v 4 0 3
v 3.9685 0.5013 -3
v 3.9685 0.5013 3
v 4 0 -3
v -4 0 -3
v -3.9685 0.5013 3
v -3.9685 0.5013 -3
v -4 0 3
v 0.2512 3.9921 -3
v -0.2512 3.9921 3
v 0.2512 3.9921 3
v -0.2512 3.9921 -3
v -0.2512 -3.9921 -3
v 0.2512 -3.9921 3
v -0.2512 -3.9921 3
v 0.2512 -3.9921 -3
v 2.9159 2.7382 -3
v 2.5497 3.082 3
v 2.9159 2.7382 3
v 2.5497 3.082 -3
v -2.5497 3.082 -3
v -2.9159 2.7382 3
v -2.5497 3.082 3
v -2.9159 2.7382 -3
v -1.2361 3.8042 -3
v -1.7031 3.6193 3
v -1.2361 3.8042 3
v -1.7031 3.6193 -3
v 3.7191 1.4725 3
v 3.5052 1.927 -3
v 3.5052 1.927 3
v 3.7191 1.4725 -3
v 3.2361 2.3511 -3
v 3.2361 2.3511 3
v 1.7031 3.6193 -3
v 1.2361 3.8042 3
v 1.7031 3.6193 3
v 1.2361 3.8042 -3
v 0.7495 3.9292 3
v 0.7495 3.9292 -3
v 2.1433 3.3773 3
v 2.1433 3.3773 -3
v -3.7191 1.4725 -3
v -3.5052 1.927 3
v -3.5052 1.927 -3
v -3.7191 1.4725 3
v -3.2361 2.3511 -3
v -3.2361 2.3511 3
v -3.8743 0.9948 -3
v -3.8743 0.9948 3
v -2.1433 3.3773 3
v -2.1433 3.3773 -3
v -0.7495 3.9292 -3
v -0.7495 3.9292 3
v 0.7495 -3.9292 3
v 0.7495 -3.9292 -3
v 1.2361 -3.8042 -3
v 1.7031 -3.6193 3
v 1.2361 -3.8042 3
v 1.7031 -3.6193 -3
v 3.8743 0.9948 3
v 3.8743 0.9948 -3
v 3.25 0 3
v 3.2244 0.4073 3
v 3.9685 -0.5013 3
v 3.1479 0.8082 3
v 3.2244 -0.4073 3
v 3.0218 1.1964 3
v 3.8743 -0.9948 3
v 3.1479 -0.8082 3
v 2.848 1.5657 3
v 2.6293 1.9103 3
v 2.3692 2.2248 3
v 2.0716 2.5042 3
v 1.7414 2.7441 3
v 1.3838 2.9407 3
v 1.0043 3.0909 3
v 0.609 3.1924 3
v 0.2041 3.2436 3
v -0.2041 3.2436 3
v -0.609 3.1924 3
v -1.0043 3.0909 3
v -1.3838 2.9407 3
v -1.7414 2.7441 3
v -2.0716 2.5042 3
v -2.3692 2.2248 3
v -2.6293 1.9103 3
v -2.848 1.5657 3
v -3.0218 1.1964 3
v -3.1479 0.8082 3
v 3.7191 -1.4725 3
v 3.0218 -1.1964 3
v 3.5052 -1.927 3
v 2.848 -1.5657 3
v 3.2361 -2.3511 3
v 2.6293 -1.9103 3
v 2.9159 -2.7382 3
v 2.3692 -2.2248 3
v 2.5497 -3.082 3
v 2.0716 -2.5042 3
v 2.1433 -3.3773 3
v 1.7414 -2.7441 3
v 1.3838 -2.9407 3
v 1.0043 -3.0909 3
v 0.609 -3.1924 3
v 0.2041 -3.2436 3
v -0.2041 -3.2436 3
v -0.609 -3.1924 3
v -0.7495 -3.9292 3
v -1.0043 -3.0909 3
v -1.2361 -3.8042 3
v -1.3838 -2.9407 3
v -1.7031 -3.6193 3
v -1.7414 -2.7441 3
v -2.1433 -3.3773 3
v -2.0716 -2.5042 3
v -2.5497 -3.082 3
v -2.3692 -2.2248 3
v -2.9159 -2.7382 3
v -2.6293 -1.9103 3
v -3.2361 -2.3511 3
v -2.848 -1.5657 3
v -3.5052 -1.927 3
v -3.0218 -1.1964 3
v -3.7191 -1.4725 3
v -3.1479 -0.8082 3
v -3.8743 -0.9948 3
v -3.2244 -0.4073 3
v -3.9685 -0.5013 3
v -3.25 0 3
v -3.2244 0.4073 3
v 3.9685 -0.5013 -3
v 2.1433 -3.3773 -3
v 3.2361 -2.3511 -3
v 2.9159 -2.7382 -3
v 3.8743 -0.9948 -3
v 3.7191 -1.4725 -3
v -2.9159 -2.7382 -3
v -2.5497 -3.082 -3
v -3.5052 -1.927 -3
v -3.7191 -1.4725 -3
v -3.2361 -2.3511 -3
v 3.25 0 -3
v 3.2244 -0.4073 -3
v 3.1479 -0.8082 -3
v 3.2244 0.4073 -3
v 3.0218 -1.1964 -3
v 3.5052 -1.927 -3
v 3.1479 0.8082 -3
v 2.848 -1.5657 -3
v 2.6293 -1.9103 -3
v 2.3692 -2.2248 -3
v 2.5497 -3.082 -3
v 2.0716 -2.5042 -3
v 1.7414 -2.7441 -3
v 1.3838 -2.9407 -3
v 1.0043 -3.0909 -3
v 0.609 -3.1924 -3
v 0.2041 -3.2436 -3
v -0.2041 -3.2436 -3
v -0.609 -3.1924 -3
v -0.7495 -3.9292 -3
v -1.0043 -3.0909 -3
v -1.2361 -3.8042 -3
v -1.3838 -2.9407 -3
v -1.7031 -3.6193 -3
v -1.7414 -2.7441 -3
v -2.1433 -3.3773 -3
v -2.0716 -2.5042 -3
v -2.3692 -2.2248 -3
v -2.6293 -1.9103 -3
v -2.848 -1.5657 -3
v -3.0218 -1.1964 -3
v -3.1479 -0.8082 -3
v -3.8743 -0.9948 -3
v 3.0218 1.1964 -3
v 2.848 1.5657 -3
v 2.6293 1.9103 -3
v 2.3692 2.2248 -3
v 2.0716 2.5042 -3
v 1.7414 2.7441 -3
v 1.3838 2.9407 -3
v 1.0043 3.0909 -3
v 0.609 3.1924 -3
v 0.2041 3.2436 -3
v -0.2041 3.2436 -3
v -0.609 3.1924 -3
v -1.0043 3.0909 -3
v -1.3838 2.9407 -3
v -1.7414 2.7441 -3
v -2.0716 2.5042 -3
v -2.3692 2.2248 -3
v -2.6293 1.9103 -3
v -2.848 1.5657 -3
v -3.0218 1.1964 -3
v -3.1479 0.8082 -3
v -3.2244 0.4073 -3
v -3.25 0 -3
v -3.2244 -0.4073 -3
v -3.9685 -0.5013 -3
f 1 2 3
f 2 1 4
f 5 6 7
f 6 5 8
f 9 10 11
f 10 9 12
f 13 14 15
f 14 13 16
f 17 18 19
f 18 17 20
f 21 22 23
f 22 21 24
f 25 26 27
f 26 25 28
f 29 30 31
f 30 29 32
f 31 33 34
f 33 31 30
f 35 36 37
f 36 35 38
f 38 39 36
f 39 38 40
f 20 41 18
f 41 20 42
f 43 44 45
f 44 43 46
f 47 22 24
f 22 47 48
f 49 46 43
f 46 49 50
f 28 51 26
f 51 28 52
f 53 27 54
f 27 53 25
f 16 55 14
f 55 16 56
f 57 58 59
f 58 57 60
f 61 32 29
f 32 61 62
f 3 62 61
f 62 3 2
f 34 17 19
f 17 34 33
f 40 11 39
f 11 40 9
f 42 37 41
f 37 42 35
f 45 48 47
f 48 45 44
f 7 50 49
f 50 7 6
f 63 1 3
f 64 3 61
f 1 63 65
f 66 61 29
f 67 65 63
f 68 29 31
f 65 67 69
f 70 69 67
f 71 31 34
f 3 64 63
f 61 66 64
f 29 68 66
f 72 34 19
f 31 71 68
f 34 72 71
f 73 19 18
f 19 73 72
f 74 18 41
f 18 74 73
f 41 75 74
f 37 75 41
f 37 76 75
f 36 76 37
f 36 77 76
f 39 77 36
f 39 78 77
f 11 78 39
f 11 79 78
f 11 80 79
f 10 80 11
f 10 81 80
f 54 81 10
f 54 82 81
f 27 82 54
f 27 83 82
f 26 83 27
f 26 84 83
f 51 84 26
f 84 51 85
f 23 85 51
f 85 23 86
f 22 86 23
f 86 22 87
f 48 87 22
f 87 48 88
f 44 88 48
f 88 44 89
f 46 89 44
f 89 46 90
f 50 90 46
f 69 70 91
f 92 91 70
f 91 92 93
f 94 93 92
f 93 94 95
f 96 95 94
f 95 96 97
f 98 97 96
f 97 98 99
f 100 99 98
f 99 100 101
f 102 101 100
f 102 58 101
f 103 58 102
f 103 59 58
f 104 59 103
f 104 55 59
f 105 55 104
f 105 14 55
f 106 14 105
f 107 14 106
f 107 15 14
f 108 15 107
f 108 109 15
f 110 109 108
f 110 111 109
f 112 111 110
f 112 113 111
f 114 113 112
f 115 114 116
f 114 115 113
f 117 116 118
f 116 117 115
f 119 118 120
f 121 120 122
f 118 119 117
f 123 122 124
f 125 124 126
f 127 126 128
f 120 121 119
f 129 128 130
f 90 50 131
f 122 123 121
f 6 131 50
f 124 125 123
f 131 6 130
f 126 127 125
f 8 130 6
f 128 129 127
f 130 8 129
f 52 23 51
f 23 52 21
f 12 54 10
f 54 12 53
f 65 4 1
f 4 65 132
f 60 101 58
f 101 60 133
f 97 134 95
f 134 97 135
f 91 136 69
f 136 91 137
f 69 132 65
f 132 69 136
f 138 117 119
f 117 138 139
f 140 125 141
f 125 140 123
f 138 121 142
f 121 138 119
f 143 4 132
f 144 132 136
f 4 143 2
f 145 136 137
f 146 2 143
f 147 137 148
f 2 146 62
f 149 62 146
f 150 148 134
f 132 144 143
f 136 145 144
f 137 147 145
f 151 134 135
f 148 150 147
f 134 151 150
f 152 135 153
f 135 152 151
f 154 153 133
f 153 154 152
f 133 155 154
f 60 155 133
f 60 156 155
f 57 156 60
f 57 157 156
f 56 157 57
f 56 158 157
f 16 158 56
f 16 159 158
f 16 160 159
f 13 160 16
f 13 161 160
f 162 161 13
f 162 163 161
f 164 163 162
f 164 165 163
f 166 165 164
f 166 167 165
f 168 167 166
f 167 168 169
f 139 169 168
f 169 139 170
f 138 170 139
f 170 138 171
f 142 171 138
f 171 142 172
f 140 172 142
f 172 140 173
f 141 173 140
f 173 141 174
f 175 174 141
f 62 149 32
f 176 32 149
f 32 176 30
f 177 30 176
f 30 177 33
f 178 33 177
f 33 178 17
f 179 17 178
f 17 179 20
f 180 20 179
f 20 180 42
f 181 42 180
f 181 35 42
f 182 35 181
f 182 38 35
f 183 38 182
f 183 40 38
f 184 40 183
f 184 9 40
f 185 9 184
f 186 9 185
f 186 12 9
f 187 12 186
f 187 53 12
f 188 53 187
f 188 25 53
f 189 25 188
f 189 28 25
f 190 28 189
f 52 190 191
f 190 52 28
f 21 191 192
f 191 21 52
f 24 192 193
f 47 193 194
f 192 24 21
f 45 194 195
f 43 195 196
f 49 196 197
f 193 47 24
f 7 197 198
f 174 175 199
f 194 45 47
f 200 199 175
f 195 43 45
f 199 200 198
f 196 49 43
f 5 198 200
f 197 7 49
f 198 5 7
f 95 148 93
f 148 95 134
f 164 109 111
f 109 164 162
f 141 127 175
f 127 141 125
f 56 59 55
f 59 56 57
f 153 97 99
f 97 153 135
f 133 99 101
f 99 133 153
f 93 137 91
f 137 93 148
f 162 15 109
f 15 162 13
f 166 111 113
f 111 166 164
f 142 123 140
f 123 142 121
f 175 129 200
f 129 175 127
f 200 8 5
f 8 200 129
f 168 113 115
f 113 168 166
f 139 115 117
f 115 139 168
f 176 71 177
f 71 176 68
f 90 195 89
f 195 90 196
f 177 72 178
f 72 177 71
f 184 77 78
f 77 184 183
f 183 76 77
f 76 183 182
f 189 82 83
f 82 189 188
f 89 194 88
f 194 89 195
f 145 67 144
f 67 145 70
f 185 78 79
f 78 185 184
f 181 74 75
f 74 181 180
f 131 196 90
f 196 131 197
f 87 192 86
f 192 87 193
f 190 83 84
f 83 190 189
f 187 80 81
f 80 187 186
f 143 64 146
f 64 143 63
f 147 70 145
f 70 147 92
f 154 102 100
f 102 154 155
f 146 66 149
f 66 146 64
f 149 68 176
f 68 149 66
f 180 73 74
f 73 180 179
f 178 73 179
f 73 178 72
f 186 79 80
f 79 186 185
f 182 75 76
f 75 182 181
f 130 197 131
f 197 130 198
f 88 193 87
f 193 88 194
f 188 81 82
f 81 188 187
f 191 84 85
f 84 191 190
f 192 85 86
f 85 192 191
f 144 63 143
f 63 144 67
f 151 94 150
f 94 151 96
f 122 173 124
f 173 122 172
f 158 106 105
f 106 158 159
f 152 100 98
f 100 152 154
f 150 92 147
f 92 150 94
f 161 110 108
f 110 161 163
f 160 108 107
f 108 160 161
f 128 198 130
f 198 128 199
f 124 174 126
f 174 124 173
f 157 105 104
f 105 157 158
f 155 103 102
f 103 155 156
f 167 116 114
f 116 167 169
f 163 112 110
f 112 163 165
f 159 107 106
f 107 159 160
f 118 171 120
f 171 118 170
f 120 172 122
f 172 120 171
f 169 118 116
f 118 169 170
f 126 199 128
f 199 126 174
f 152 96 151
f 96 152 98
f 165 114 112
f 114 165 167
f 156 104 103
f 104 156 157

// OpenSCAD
$fn = 50;


difference() {
	union() {
		translate(v = [0, 0, -3.0000000000]) {
			cylinder(h = 6, r = 4.0000000000);
		}
	}
	union() {
		translate(v = [0, 0, -100.0000000000]) {
			cylinder(h = 200, r = 3.2500000000);
		}
	}
}
